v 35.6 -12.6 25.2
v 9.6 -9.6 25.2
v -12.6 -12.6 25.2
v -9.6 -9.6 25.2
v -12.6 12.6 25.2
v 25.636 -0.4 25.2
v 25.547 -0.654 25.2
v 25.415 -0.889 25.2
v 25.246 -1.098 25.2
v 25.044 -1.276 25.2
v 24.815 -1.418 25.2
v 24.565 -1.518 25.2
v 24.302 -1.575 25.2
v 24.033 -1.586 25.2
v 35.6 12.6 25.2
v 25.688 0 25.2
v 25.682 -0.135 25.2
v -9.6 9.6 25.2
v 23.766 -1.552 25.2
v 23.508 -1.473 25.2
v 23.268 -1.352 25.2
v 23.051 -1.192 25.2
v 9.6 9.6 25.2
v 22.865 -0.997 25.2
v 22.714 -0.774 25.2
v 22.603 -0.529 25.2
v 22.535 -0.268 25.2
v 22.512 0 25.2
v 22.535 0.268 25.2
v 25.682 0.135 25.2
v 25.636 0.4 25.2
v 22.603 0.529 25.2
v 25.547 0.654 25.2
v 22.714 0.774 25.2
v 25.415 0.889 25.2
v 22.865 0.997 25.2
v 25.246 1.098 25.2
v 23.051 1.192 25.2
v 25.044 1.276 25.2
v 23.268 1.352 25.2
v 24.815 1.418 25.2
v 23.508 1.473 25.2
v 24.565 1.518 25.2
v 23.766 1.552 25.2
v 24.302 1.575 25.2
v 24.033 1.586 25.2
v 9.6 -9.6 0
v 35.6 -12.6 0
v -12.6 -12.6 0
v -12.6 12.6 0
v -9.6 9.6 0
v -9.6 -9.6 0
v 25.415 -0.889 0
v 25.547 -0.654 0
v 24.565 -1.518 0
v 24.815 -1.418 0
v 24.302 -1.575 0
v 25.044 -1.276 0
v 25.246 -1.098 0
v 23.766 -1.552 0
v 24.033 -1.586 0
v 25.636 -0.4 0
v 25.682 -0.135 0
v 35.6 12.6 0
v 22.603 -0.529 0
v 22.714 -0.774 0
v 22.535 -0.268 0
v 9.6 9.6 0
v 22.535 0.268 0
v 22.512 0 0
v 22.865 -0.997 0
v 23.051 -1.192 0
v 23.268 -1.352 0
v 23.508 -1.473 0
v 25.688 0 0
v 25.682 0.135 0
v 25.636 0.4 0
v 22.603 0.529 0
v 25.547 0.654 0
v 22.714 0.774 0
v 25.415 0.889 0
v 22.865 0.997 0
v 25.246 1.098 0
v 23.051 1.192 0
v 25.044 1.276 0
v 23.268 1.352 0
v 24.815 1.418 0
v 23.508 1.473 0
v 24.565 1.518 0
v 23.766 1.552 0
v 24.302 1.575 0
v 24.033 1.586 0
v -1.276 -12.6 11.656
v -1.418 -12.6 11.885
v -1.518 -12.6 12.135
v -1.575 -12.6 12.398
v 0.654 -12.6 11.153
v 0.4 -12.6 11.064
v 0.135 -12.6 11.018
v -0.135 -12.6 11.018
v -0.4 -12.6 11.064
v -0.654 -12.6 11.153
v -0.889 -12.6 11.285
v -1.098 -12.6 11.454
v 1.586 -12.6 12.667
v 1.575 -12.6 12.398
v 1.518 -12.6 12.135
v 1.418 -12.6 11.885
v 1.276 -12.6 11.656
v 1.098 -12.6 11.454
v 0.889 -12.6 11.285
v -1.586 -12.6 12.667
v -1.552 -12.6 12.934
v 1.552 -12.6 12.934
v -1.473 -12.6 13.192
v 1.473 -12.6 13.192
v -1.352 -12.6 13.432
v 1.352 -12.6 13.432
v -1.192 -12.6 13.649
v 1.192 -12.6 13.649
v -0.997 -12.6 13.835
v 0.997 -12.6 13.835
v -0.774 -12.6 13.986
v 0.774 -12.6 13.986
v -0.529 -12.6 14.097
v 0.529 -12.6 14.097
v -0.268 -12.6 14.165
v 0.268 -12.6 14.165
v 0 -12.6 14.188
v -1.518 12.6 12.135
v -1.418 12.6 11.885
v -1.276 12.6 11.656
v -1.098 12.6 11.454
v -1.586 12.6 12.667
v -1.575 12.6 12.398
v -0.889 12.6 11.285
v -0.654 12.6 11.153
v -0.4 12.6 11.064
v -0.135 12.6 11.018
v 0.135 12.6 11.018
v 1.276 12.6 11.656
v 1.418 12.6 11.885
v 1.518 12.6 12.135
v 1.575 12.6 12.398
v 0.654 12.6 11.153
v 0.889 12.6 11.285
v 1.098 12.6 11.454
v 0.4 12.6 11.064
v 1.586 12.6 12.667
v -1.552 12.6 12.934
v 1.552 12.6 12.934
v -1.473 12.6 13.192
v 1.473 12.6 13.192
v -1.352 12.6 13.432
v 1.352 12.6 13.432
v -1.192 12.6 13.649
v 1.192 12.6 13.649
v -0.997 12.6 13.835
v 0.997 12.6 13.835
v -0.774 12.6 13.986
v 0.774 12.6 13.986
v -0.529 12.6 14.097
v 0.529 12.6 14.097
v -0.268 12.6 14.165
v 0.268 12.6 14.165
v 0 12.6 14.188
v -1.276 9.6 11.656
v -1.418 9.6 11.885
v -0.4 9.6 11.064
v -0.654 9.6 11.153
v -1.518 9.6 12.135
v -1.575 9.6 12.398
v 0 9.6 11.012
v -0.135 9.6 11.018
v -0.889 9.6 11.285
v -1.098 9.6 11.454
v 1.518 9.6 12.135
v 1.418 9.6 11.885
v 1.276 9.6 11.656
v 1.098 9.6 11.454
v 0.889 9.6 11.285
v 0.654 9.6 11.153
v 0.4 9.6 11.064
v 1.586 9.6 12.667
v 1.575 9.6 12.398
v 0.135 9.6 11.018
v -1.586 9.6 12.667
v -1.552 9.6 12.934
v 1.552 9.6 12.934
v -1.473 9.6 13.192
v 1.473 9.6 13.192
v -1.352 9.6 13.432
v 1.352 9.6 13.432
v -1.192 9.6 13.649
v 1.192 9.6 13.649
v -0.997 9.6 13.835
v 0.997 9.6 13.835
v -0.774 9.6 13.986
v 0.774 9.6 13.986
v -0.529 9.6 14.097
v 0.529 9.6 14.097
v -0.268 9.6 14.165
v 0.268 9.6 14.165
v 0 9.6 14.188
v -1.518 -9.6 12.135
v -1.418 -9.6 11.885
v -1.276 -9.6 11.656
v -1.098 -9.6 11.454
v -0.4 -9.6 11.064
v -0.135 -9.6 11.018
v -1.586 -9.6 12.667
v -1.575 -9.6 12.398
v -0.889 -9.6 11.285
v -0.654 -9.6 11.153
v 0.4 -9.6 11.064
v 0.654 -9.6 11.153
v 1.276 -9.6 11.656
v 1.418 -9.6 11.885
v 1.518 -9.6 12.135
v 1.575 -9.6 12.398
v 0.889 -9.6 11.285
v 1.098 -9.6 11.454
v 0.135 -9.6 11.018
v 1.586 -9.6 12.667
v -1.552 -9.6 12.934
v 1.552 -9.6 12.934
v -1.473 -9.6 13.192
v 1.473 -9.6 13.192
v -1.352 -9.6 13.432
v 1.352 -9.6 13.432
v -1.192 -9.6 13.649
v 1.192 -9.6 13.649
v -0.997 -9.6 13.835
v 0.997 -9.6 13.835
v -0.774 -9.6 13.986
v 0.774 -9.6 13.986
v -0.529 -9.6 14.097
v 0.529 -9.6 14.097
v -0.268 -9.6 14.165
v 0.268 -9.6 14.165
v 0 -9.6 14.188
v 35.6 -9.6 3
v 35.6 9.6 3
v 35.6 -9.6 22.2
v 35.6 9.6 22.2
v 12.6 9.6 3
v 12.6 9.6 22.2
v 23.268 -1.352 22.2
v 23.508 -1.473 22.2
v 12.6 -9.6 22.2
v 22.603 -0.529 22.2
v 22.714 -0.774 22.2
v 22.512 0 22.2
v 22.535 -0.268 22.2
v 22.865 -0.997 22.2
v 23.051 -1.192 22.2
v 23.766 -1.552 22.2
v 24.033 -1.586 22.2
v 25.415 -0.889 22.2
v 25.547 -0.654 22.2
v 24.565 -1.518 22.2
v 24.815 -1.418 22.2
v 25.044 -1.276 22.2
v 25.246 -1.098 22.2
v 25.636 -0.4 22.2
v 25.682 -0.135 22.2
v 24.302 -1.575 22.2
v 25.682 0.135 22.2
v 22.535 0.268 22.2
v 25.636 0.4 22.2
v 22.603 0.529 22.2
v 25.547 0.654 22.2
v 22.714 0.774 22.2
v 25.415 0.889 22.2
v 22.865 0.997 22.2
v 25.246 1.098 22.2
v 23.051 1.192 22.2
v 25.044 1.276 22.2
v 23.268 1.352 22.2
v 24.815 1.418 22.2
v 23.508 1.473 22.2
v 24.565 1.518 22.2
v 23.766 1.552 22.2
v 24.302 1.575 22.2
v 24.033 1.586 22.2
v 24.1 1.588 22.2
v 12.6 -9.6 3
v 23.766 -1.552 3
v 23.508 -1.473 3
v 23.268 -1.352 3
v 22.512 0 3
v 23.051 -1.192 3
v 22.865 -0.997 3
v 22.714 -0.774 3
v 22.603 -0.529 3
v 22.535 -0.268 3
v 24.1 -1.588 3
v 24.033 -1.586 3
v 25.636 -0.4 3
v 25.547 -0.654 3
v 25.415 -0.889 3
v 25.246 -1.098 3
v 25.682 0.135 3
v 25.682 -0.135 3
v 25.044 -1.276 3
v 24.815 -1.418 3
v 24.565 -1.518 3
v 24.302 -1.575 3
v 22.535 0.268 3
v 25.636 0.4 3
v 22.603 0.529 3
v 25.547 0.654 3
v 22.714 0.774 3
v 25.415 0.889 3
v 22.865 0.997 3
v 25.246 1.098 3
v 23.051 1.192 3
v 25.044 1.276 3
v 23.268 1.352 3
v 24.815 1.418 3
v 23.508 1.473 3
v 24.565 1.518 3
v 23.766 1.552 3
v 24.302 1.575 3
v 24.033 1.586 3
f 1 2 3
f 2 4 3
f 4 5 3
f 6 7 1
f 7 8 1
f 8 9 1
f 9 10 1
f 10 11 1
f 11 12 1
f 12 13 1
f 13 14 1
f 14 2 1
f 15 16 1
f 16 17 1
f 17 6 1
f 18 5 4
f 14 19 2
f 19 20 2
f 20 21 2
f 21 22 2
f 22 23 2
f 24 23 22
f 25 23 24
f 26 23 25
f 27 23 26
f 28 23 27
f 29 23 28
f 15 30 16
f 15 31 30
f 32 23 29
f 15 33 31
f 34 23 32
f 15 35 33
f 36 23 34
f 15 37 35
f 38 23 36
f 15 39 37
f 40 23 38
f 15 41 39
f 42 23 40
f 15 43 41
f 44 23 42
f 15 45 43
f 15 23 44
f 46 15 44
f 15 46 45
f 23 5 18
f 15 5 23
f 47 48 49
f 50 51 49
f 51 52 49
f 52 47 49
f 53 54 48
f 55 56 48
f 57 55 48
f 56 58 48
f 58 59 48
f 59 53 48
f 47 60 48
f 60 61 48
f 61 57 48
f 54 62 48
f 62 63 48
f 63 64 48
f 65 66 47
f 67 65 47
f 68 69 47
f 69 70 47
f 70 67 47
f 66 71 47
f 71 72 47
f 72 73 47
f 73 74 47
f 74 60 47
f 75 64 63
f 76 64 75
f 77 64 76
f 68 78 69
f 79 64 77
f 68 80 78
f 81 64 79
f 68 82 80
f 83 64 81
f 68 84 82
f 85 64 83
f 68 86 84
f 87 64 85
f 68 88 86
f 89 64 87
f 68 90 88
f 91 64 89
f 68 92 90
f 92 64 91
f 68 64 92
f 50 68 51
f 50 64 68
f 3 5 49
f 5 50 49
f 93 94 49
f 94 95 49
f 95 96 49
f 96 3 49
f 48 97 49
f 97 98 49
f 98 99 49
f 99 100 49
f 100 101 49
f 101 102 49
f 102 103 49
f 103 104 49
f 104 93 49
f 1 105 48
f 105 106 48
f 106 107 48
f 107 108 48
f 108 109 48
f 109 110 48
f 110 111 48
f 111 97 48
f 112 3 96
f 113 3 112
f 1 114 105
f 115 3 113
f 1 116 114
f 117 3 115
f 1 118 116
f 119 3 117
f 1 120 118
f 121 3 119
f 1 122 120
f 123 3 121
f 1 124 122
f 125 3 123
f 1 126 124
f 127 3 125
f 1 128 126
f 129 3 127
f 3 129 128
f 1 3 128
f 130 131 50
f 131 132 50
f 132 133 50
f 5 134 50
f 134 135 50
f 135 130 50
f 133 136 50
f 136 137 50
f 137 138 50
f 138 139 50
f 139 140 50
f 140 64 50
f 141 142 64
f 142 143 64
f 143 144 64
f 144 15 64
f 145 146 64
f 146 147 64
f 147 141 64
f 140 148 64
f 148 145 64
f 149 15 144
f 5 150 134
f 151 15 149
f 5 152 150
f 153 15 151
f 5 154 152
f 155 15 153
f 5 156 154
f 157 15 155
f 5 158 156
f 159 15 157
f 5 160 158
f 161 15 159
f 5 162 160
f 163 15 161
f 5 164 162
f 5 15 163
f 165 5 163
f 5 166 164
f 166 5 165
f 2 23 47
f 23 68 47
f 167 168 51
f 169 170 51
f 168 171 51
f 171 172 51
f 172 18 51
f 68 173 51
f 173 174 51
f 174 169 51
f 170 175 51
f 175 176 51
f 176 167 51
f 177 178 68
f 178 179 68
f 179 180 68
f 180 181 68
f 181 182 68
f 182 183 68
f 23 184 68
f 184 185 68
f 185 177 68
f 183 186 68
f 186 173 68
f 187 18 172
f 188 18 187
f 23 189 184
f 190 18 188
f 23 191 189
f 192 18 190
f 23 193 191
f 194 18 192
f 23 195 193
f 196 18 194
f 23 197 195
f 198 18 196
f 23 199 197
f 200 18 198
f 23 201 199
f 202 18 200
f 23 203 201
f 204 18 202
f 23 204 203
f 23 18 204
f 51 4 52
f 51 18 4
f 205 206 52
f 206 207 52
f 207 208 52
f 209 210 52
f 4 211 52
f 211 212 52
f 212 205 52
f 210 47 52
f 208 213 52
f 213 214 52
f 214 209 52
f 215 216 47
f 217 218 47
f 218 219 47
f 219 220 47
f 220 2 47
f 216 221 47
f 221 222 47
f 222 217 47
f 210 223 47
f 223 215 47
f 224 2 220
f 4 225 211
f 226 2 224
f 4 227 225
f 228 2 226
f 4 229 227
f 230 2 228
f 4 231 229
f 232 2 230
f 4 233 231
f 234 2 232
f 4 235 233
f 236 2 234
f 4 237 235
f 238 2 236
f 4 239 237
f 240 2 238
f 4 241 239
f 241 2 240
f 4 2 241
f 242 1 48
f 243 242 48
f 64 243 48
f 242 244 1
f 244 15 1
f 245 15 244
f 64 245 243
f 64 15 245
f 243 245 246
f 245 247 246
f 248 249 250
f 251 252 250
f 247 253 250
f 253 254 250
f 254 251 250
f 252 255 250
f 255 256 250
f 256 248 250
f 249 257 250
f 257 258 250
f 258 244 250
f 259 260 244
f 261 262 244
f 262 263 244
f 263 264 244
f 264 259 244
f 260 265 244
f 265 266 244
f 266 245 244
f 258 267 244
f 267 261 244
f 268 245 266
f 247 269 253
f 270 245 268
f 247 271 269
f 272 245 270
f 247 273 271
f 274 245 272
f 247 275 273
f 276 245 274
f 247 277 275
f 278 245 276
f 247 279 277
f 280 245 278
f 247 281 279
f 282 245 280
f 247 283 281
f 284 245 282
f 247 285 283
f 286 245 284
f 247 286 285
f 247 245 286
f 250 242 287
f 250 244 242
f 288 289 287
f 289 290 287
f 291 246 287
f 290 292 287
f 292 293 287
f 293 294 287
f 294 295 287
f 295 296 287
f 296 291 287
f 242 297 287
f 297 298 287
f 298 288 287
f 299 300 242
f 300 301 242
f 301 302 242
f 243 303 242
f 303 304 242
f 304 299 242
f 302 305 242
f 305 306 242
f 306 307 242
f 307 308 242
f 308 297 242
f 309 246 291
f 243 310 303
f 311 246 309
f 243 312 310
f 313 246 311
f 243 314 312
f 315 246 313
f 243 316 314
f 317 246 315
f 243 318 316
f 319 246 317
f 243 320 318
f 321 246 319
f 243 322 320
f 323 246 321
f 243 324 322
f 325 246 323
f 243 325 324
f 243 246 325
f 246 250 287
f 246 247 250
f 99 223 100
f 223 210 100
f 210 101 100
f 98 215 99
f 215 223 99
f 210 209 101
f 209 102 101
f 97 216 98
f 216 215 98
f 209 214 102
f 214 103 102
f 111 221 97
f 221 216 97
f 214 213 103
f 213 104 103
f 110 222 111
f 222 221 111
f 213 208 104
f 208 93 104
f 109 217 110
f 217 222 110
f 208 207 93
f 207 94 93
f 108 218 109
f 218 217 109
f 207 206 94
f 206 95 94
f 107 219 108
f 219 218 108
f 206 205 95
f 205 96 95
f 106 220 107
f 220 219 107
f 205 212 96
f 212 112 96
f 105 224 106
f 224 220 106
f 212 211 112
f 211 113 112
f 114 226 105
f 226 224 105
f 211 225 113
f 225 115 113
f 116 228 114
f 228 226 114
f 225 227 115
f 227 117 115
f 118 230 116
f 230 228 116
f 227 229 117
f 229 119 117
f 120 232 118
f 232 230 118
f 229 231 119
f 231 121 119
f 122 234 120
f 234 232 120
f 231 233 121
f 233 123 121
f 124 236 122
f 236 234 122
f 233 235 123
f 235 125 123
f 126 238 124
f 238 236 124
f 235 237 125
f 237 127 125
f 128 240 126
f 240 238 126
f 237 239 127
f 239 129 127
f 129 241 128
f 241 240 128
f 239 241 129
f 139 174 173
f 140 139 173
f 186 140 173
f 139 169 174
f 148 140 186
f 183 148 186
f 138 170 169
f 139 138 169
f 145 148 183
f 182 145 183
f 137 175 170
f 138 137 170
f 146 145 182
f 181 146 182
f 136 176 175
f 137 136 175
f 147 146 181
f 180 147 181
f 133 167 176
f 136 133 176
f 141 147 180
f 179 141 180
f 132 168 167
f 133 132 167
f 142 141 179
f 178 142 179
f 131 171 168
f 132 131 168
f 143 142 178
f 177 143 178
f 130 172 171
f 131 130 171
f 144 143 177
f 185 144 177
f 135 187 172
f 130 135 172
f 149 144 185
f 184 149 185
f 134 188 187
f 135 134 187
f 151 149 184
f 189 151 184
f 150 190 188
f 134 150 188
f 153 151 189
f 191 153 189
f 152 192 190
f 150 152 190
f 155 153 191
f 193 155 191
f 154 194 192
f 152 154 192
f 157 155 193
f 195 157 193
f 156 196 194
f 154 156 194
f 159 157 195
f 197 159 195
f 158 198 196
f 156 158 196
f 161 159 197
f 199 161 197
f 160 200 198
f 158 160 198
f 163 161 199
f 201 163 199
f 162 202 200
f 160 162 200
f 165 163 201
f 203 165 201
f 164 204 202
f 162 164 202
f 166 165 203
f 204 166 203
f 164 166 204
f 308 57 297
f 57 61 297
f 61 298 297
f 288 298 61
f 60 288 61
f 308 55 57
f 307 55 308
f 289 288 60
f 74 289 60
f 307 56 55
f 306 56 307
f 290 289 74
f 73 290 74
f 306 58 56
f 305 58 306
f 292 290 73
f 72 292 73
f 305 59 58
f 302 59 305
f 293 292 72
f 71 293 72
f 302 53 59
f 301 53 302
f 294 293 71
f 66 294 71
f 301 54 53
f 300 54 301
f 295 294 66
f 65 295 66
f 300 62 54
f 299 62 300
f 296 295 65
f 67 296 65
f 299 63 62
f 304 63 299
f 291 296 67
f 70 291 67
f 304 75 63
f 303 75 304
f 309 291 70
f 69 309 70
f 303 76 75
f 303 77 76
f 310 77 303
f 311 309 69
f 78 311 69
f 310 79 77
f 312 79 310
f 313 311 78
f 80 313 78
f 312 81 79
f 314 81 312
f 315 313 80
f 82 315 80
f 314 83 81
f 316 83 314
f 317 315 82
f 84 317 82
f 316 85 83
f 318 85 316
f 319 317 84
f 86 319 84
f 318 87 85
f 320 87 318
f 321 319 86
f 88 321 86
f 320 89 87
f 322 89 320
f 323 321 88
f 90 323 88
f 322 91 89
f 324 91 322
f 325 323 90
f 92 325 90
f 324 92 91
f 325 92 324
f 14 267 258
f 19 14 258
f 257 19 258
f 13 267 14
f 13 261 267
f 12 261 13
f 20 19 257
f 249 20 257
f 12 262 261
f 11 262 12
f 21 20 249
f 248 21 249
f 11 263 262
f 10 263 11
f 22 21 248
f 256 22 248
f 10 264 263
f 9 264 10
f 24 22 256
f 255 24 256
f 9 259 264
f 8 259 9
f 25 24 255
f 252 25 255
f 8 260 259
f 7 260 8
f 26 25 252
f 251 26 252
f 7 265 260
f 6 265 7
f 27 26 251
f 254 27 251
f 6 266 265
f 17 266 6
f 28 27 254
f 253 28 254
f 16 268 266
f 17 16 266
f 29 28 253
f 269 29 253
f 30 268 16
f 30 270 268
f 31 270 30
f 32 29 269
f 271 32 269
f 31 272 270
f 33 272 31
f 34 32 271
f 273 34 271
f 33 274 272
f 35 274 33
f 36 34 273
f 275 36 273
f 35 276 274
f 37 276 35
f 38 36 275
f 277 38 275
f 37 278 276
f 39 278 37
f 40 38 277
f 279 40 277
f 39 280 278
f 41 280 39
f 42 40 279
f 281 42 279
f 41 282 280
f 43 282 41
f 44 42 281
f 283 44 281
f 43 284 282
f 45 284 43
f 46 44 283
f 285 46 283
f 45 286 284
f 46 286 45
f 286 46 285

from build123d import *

# Parameters (mm, degrees)
SKETCH1_W               = 25.2
SKETCH1_H               = 25.2
SKETCH1_W_2             = 19.2
SKETCH1_H_2             = 19.2
BOSS_EXTRUDE1_DEPTH     = 25.2
SKETCH3_W               = 25.2
SKETCH3_H               = 25.2
SKETCH3_W_2             = 19.2
SKETCH3_H_2             = 19.2
BOSS_EXTRUDE2_DEPTH     = 23
CUT_EXTRUDE1_DEPTH      = 49.941189197
CUT_EXTRUDE1_DEPTH_BACK = 49.941189197
SKETCH4_R               = 1.5875
CUT_EXTRUDE2_DEPTH      = 44.805935671
CUT_EXTRUDE2_DEPTH_BACK = 44.805935671
SKETCH5_R               = 1.5875


with BuildPart() as part:
    # Sketch1 → Boss-Extrude1 (new body)
    with BuildSketch(Plane.XY):
        Rectangle(SKETCH1_W, SKETCH1_H)
        Rectangle(SKETCH1_W_2, SKETCH1_H_2, mode=Mode.SUBTRACT)
    extrude(amount=BOSS_EXTRUDE1_DEPTH)

    # Sketch3 → Boss-Extrude2 (add)
    with BuildSketch(Plane(origin=(12.6, 0, 0), x_dir=(0, 0, -1), z_dir=(1, 0, 0))):
        with Locations((-12.6, 0)):
            Rectangle(SKETCH3_W, SKETCH3_H)
        with Locations((-12.6, 0)):
            Rectangle(SKETCH3_W_2, SKETCH3_H_2, mode=Mode.SUBTRACT)
    extrude(amount=BOSS_EXTRUDE2_DEPTH)

    # Sketch4 → Cut-Extrude1 (cut, two sides: drawn at the far end of the back side and taken through both)
    with BuildSketch(Plane(origin=(0, -9.6, 0), x_dir=(1, 0, 0), z_dir=(0, 1, 0)).offset(-CUT_EXTRUDE1_DEPTH_BACK)):
        with Locations(Location((0, -12.6, 0), (0, 0, 270))):
            Circle(SKETCH4_R)
    extrude(amount=CUT_EXTRUDE1_DEPTH + CUT_EXTRUDE1_DEPTH_BACK, mode=Mode.SUBTRACT)

    # Sketch5 → Cut-Extrude2 (cut, two sides: drawn at the far end of the back side and taken through both)
    with BuildSketch(Plane.XY.offset(3).offset(-CUT_EXTRUDE2_DEPTH_BACK)):
        with Locations(Location((24.1, 0, 0), (0, 0, 270))):
            Circle(SKETCH5_R)
    extrude(amount=CUT_EXTRUDE2_DEPTH + CUT_EXTRUDE2_DEPTH_BACK, mode=Mode.SUBTRACT)


solid = part.part
